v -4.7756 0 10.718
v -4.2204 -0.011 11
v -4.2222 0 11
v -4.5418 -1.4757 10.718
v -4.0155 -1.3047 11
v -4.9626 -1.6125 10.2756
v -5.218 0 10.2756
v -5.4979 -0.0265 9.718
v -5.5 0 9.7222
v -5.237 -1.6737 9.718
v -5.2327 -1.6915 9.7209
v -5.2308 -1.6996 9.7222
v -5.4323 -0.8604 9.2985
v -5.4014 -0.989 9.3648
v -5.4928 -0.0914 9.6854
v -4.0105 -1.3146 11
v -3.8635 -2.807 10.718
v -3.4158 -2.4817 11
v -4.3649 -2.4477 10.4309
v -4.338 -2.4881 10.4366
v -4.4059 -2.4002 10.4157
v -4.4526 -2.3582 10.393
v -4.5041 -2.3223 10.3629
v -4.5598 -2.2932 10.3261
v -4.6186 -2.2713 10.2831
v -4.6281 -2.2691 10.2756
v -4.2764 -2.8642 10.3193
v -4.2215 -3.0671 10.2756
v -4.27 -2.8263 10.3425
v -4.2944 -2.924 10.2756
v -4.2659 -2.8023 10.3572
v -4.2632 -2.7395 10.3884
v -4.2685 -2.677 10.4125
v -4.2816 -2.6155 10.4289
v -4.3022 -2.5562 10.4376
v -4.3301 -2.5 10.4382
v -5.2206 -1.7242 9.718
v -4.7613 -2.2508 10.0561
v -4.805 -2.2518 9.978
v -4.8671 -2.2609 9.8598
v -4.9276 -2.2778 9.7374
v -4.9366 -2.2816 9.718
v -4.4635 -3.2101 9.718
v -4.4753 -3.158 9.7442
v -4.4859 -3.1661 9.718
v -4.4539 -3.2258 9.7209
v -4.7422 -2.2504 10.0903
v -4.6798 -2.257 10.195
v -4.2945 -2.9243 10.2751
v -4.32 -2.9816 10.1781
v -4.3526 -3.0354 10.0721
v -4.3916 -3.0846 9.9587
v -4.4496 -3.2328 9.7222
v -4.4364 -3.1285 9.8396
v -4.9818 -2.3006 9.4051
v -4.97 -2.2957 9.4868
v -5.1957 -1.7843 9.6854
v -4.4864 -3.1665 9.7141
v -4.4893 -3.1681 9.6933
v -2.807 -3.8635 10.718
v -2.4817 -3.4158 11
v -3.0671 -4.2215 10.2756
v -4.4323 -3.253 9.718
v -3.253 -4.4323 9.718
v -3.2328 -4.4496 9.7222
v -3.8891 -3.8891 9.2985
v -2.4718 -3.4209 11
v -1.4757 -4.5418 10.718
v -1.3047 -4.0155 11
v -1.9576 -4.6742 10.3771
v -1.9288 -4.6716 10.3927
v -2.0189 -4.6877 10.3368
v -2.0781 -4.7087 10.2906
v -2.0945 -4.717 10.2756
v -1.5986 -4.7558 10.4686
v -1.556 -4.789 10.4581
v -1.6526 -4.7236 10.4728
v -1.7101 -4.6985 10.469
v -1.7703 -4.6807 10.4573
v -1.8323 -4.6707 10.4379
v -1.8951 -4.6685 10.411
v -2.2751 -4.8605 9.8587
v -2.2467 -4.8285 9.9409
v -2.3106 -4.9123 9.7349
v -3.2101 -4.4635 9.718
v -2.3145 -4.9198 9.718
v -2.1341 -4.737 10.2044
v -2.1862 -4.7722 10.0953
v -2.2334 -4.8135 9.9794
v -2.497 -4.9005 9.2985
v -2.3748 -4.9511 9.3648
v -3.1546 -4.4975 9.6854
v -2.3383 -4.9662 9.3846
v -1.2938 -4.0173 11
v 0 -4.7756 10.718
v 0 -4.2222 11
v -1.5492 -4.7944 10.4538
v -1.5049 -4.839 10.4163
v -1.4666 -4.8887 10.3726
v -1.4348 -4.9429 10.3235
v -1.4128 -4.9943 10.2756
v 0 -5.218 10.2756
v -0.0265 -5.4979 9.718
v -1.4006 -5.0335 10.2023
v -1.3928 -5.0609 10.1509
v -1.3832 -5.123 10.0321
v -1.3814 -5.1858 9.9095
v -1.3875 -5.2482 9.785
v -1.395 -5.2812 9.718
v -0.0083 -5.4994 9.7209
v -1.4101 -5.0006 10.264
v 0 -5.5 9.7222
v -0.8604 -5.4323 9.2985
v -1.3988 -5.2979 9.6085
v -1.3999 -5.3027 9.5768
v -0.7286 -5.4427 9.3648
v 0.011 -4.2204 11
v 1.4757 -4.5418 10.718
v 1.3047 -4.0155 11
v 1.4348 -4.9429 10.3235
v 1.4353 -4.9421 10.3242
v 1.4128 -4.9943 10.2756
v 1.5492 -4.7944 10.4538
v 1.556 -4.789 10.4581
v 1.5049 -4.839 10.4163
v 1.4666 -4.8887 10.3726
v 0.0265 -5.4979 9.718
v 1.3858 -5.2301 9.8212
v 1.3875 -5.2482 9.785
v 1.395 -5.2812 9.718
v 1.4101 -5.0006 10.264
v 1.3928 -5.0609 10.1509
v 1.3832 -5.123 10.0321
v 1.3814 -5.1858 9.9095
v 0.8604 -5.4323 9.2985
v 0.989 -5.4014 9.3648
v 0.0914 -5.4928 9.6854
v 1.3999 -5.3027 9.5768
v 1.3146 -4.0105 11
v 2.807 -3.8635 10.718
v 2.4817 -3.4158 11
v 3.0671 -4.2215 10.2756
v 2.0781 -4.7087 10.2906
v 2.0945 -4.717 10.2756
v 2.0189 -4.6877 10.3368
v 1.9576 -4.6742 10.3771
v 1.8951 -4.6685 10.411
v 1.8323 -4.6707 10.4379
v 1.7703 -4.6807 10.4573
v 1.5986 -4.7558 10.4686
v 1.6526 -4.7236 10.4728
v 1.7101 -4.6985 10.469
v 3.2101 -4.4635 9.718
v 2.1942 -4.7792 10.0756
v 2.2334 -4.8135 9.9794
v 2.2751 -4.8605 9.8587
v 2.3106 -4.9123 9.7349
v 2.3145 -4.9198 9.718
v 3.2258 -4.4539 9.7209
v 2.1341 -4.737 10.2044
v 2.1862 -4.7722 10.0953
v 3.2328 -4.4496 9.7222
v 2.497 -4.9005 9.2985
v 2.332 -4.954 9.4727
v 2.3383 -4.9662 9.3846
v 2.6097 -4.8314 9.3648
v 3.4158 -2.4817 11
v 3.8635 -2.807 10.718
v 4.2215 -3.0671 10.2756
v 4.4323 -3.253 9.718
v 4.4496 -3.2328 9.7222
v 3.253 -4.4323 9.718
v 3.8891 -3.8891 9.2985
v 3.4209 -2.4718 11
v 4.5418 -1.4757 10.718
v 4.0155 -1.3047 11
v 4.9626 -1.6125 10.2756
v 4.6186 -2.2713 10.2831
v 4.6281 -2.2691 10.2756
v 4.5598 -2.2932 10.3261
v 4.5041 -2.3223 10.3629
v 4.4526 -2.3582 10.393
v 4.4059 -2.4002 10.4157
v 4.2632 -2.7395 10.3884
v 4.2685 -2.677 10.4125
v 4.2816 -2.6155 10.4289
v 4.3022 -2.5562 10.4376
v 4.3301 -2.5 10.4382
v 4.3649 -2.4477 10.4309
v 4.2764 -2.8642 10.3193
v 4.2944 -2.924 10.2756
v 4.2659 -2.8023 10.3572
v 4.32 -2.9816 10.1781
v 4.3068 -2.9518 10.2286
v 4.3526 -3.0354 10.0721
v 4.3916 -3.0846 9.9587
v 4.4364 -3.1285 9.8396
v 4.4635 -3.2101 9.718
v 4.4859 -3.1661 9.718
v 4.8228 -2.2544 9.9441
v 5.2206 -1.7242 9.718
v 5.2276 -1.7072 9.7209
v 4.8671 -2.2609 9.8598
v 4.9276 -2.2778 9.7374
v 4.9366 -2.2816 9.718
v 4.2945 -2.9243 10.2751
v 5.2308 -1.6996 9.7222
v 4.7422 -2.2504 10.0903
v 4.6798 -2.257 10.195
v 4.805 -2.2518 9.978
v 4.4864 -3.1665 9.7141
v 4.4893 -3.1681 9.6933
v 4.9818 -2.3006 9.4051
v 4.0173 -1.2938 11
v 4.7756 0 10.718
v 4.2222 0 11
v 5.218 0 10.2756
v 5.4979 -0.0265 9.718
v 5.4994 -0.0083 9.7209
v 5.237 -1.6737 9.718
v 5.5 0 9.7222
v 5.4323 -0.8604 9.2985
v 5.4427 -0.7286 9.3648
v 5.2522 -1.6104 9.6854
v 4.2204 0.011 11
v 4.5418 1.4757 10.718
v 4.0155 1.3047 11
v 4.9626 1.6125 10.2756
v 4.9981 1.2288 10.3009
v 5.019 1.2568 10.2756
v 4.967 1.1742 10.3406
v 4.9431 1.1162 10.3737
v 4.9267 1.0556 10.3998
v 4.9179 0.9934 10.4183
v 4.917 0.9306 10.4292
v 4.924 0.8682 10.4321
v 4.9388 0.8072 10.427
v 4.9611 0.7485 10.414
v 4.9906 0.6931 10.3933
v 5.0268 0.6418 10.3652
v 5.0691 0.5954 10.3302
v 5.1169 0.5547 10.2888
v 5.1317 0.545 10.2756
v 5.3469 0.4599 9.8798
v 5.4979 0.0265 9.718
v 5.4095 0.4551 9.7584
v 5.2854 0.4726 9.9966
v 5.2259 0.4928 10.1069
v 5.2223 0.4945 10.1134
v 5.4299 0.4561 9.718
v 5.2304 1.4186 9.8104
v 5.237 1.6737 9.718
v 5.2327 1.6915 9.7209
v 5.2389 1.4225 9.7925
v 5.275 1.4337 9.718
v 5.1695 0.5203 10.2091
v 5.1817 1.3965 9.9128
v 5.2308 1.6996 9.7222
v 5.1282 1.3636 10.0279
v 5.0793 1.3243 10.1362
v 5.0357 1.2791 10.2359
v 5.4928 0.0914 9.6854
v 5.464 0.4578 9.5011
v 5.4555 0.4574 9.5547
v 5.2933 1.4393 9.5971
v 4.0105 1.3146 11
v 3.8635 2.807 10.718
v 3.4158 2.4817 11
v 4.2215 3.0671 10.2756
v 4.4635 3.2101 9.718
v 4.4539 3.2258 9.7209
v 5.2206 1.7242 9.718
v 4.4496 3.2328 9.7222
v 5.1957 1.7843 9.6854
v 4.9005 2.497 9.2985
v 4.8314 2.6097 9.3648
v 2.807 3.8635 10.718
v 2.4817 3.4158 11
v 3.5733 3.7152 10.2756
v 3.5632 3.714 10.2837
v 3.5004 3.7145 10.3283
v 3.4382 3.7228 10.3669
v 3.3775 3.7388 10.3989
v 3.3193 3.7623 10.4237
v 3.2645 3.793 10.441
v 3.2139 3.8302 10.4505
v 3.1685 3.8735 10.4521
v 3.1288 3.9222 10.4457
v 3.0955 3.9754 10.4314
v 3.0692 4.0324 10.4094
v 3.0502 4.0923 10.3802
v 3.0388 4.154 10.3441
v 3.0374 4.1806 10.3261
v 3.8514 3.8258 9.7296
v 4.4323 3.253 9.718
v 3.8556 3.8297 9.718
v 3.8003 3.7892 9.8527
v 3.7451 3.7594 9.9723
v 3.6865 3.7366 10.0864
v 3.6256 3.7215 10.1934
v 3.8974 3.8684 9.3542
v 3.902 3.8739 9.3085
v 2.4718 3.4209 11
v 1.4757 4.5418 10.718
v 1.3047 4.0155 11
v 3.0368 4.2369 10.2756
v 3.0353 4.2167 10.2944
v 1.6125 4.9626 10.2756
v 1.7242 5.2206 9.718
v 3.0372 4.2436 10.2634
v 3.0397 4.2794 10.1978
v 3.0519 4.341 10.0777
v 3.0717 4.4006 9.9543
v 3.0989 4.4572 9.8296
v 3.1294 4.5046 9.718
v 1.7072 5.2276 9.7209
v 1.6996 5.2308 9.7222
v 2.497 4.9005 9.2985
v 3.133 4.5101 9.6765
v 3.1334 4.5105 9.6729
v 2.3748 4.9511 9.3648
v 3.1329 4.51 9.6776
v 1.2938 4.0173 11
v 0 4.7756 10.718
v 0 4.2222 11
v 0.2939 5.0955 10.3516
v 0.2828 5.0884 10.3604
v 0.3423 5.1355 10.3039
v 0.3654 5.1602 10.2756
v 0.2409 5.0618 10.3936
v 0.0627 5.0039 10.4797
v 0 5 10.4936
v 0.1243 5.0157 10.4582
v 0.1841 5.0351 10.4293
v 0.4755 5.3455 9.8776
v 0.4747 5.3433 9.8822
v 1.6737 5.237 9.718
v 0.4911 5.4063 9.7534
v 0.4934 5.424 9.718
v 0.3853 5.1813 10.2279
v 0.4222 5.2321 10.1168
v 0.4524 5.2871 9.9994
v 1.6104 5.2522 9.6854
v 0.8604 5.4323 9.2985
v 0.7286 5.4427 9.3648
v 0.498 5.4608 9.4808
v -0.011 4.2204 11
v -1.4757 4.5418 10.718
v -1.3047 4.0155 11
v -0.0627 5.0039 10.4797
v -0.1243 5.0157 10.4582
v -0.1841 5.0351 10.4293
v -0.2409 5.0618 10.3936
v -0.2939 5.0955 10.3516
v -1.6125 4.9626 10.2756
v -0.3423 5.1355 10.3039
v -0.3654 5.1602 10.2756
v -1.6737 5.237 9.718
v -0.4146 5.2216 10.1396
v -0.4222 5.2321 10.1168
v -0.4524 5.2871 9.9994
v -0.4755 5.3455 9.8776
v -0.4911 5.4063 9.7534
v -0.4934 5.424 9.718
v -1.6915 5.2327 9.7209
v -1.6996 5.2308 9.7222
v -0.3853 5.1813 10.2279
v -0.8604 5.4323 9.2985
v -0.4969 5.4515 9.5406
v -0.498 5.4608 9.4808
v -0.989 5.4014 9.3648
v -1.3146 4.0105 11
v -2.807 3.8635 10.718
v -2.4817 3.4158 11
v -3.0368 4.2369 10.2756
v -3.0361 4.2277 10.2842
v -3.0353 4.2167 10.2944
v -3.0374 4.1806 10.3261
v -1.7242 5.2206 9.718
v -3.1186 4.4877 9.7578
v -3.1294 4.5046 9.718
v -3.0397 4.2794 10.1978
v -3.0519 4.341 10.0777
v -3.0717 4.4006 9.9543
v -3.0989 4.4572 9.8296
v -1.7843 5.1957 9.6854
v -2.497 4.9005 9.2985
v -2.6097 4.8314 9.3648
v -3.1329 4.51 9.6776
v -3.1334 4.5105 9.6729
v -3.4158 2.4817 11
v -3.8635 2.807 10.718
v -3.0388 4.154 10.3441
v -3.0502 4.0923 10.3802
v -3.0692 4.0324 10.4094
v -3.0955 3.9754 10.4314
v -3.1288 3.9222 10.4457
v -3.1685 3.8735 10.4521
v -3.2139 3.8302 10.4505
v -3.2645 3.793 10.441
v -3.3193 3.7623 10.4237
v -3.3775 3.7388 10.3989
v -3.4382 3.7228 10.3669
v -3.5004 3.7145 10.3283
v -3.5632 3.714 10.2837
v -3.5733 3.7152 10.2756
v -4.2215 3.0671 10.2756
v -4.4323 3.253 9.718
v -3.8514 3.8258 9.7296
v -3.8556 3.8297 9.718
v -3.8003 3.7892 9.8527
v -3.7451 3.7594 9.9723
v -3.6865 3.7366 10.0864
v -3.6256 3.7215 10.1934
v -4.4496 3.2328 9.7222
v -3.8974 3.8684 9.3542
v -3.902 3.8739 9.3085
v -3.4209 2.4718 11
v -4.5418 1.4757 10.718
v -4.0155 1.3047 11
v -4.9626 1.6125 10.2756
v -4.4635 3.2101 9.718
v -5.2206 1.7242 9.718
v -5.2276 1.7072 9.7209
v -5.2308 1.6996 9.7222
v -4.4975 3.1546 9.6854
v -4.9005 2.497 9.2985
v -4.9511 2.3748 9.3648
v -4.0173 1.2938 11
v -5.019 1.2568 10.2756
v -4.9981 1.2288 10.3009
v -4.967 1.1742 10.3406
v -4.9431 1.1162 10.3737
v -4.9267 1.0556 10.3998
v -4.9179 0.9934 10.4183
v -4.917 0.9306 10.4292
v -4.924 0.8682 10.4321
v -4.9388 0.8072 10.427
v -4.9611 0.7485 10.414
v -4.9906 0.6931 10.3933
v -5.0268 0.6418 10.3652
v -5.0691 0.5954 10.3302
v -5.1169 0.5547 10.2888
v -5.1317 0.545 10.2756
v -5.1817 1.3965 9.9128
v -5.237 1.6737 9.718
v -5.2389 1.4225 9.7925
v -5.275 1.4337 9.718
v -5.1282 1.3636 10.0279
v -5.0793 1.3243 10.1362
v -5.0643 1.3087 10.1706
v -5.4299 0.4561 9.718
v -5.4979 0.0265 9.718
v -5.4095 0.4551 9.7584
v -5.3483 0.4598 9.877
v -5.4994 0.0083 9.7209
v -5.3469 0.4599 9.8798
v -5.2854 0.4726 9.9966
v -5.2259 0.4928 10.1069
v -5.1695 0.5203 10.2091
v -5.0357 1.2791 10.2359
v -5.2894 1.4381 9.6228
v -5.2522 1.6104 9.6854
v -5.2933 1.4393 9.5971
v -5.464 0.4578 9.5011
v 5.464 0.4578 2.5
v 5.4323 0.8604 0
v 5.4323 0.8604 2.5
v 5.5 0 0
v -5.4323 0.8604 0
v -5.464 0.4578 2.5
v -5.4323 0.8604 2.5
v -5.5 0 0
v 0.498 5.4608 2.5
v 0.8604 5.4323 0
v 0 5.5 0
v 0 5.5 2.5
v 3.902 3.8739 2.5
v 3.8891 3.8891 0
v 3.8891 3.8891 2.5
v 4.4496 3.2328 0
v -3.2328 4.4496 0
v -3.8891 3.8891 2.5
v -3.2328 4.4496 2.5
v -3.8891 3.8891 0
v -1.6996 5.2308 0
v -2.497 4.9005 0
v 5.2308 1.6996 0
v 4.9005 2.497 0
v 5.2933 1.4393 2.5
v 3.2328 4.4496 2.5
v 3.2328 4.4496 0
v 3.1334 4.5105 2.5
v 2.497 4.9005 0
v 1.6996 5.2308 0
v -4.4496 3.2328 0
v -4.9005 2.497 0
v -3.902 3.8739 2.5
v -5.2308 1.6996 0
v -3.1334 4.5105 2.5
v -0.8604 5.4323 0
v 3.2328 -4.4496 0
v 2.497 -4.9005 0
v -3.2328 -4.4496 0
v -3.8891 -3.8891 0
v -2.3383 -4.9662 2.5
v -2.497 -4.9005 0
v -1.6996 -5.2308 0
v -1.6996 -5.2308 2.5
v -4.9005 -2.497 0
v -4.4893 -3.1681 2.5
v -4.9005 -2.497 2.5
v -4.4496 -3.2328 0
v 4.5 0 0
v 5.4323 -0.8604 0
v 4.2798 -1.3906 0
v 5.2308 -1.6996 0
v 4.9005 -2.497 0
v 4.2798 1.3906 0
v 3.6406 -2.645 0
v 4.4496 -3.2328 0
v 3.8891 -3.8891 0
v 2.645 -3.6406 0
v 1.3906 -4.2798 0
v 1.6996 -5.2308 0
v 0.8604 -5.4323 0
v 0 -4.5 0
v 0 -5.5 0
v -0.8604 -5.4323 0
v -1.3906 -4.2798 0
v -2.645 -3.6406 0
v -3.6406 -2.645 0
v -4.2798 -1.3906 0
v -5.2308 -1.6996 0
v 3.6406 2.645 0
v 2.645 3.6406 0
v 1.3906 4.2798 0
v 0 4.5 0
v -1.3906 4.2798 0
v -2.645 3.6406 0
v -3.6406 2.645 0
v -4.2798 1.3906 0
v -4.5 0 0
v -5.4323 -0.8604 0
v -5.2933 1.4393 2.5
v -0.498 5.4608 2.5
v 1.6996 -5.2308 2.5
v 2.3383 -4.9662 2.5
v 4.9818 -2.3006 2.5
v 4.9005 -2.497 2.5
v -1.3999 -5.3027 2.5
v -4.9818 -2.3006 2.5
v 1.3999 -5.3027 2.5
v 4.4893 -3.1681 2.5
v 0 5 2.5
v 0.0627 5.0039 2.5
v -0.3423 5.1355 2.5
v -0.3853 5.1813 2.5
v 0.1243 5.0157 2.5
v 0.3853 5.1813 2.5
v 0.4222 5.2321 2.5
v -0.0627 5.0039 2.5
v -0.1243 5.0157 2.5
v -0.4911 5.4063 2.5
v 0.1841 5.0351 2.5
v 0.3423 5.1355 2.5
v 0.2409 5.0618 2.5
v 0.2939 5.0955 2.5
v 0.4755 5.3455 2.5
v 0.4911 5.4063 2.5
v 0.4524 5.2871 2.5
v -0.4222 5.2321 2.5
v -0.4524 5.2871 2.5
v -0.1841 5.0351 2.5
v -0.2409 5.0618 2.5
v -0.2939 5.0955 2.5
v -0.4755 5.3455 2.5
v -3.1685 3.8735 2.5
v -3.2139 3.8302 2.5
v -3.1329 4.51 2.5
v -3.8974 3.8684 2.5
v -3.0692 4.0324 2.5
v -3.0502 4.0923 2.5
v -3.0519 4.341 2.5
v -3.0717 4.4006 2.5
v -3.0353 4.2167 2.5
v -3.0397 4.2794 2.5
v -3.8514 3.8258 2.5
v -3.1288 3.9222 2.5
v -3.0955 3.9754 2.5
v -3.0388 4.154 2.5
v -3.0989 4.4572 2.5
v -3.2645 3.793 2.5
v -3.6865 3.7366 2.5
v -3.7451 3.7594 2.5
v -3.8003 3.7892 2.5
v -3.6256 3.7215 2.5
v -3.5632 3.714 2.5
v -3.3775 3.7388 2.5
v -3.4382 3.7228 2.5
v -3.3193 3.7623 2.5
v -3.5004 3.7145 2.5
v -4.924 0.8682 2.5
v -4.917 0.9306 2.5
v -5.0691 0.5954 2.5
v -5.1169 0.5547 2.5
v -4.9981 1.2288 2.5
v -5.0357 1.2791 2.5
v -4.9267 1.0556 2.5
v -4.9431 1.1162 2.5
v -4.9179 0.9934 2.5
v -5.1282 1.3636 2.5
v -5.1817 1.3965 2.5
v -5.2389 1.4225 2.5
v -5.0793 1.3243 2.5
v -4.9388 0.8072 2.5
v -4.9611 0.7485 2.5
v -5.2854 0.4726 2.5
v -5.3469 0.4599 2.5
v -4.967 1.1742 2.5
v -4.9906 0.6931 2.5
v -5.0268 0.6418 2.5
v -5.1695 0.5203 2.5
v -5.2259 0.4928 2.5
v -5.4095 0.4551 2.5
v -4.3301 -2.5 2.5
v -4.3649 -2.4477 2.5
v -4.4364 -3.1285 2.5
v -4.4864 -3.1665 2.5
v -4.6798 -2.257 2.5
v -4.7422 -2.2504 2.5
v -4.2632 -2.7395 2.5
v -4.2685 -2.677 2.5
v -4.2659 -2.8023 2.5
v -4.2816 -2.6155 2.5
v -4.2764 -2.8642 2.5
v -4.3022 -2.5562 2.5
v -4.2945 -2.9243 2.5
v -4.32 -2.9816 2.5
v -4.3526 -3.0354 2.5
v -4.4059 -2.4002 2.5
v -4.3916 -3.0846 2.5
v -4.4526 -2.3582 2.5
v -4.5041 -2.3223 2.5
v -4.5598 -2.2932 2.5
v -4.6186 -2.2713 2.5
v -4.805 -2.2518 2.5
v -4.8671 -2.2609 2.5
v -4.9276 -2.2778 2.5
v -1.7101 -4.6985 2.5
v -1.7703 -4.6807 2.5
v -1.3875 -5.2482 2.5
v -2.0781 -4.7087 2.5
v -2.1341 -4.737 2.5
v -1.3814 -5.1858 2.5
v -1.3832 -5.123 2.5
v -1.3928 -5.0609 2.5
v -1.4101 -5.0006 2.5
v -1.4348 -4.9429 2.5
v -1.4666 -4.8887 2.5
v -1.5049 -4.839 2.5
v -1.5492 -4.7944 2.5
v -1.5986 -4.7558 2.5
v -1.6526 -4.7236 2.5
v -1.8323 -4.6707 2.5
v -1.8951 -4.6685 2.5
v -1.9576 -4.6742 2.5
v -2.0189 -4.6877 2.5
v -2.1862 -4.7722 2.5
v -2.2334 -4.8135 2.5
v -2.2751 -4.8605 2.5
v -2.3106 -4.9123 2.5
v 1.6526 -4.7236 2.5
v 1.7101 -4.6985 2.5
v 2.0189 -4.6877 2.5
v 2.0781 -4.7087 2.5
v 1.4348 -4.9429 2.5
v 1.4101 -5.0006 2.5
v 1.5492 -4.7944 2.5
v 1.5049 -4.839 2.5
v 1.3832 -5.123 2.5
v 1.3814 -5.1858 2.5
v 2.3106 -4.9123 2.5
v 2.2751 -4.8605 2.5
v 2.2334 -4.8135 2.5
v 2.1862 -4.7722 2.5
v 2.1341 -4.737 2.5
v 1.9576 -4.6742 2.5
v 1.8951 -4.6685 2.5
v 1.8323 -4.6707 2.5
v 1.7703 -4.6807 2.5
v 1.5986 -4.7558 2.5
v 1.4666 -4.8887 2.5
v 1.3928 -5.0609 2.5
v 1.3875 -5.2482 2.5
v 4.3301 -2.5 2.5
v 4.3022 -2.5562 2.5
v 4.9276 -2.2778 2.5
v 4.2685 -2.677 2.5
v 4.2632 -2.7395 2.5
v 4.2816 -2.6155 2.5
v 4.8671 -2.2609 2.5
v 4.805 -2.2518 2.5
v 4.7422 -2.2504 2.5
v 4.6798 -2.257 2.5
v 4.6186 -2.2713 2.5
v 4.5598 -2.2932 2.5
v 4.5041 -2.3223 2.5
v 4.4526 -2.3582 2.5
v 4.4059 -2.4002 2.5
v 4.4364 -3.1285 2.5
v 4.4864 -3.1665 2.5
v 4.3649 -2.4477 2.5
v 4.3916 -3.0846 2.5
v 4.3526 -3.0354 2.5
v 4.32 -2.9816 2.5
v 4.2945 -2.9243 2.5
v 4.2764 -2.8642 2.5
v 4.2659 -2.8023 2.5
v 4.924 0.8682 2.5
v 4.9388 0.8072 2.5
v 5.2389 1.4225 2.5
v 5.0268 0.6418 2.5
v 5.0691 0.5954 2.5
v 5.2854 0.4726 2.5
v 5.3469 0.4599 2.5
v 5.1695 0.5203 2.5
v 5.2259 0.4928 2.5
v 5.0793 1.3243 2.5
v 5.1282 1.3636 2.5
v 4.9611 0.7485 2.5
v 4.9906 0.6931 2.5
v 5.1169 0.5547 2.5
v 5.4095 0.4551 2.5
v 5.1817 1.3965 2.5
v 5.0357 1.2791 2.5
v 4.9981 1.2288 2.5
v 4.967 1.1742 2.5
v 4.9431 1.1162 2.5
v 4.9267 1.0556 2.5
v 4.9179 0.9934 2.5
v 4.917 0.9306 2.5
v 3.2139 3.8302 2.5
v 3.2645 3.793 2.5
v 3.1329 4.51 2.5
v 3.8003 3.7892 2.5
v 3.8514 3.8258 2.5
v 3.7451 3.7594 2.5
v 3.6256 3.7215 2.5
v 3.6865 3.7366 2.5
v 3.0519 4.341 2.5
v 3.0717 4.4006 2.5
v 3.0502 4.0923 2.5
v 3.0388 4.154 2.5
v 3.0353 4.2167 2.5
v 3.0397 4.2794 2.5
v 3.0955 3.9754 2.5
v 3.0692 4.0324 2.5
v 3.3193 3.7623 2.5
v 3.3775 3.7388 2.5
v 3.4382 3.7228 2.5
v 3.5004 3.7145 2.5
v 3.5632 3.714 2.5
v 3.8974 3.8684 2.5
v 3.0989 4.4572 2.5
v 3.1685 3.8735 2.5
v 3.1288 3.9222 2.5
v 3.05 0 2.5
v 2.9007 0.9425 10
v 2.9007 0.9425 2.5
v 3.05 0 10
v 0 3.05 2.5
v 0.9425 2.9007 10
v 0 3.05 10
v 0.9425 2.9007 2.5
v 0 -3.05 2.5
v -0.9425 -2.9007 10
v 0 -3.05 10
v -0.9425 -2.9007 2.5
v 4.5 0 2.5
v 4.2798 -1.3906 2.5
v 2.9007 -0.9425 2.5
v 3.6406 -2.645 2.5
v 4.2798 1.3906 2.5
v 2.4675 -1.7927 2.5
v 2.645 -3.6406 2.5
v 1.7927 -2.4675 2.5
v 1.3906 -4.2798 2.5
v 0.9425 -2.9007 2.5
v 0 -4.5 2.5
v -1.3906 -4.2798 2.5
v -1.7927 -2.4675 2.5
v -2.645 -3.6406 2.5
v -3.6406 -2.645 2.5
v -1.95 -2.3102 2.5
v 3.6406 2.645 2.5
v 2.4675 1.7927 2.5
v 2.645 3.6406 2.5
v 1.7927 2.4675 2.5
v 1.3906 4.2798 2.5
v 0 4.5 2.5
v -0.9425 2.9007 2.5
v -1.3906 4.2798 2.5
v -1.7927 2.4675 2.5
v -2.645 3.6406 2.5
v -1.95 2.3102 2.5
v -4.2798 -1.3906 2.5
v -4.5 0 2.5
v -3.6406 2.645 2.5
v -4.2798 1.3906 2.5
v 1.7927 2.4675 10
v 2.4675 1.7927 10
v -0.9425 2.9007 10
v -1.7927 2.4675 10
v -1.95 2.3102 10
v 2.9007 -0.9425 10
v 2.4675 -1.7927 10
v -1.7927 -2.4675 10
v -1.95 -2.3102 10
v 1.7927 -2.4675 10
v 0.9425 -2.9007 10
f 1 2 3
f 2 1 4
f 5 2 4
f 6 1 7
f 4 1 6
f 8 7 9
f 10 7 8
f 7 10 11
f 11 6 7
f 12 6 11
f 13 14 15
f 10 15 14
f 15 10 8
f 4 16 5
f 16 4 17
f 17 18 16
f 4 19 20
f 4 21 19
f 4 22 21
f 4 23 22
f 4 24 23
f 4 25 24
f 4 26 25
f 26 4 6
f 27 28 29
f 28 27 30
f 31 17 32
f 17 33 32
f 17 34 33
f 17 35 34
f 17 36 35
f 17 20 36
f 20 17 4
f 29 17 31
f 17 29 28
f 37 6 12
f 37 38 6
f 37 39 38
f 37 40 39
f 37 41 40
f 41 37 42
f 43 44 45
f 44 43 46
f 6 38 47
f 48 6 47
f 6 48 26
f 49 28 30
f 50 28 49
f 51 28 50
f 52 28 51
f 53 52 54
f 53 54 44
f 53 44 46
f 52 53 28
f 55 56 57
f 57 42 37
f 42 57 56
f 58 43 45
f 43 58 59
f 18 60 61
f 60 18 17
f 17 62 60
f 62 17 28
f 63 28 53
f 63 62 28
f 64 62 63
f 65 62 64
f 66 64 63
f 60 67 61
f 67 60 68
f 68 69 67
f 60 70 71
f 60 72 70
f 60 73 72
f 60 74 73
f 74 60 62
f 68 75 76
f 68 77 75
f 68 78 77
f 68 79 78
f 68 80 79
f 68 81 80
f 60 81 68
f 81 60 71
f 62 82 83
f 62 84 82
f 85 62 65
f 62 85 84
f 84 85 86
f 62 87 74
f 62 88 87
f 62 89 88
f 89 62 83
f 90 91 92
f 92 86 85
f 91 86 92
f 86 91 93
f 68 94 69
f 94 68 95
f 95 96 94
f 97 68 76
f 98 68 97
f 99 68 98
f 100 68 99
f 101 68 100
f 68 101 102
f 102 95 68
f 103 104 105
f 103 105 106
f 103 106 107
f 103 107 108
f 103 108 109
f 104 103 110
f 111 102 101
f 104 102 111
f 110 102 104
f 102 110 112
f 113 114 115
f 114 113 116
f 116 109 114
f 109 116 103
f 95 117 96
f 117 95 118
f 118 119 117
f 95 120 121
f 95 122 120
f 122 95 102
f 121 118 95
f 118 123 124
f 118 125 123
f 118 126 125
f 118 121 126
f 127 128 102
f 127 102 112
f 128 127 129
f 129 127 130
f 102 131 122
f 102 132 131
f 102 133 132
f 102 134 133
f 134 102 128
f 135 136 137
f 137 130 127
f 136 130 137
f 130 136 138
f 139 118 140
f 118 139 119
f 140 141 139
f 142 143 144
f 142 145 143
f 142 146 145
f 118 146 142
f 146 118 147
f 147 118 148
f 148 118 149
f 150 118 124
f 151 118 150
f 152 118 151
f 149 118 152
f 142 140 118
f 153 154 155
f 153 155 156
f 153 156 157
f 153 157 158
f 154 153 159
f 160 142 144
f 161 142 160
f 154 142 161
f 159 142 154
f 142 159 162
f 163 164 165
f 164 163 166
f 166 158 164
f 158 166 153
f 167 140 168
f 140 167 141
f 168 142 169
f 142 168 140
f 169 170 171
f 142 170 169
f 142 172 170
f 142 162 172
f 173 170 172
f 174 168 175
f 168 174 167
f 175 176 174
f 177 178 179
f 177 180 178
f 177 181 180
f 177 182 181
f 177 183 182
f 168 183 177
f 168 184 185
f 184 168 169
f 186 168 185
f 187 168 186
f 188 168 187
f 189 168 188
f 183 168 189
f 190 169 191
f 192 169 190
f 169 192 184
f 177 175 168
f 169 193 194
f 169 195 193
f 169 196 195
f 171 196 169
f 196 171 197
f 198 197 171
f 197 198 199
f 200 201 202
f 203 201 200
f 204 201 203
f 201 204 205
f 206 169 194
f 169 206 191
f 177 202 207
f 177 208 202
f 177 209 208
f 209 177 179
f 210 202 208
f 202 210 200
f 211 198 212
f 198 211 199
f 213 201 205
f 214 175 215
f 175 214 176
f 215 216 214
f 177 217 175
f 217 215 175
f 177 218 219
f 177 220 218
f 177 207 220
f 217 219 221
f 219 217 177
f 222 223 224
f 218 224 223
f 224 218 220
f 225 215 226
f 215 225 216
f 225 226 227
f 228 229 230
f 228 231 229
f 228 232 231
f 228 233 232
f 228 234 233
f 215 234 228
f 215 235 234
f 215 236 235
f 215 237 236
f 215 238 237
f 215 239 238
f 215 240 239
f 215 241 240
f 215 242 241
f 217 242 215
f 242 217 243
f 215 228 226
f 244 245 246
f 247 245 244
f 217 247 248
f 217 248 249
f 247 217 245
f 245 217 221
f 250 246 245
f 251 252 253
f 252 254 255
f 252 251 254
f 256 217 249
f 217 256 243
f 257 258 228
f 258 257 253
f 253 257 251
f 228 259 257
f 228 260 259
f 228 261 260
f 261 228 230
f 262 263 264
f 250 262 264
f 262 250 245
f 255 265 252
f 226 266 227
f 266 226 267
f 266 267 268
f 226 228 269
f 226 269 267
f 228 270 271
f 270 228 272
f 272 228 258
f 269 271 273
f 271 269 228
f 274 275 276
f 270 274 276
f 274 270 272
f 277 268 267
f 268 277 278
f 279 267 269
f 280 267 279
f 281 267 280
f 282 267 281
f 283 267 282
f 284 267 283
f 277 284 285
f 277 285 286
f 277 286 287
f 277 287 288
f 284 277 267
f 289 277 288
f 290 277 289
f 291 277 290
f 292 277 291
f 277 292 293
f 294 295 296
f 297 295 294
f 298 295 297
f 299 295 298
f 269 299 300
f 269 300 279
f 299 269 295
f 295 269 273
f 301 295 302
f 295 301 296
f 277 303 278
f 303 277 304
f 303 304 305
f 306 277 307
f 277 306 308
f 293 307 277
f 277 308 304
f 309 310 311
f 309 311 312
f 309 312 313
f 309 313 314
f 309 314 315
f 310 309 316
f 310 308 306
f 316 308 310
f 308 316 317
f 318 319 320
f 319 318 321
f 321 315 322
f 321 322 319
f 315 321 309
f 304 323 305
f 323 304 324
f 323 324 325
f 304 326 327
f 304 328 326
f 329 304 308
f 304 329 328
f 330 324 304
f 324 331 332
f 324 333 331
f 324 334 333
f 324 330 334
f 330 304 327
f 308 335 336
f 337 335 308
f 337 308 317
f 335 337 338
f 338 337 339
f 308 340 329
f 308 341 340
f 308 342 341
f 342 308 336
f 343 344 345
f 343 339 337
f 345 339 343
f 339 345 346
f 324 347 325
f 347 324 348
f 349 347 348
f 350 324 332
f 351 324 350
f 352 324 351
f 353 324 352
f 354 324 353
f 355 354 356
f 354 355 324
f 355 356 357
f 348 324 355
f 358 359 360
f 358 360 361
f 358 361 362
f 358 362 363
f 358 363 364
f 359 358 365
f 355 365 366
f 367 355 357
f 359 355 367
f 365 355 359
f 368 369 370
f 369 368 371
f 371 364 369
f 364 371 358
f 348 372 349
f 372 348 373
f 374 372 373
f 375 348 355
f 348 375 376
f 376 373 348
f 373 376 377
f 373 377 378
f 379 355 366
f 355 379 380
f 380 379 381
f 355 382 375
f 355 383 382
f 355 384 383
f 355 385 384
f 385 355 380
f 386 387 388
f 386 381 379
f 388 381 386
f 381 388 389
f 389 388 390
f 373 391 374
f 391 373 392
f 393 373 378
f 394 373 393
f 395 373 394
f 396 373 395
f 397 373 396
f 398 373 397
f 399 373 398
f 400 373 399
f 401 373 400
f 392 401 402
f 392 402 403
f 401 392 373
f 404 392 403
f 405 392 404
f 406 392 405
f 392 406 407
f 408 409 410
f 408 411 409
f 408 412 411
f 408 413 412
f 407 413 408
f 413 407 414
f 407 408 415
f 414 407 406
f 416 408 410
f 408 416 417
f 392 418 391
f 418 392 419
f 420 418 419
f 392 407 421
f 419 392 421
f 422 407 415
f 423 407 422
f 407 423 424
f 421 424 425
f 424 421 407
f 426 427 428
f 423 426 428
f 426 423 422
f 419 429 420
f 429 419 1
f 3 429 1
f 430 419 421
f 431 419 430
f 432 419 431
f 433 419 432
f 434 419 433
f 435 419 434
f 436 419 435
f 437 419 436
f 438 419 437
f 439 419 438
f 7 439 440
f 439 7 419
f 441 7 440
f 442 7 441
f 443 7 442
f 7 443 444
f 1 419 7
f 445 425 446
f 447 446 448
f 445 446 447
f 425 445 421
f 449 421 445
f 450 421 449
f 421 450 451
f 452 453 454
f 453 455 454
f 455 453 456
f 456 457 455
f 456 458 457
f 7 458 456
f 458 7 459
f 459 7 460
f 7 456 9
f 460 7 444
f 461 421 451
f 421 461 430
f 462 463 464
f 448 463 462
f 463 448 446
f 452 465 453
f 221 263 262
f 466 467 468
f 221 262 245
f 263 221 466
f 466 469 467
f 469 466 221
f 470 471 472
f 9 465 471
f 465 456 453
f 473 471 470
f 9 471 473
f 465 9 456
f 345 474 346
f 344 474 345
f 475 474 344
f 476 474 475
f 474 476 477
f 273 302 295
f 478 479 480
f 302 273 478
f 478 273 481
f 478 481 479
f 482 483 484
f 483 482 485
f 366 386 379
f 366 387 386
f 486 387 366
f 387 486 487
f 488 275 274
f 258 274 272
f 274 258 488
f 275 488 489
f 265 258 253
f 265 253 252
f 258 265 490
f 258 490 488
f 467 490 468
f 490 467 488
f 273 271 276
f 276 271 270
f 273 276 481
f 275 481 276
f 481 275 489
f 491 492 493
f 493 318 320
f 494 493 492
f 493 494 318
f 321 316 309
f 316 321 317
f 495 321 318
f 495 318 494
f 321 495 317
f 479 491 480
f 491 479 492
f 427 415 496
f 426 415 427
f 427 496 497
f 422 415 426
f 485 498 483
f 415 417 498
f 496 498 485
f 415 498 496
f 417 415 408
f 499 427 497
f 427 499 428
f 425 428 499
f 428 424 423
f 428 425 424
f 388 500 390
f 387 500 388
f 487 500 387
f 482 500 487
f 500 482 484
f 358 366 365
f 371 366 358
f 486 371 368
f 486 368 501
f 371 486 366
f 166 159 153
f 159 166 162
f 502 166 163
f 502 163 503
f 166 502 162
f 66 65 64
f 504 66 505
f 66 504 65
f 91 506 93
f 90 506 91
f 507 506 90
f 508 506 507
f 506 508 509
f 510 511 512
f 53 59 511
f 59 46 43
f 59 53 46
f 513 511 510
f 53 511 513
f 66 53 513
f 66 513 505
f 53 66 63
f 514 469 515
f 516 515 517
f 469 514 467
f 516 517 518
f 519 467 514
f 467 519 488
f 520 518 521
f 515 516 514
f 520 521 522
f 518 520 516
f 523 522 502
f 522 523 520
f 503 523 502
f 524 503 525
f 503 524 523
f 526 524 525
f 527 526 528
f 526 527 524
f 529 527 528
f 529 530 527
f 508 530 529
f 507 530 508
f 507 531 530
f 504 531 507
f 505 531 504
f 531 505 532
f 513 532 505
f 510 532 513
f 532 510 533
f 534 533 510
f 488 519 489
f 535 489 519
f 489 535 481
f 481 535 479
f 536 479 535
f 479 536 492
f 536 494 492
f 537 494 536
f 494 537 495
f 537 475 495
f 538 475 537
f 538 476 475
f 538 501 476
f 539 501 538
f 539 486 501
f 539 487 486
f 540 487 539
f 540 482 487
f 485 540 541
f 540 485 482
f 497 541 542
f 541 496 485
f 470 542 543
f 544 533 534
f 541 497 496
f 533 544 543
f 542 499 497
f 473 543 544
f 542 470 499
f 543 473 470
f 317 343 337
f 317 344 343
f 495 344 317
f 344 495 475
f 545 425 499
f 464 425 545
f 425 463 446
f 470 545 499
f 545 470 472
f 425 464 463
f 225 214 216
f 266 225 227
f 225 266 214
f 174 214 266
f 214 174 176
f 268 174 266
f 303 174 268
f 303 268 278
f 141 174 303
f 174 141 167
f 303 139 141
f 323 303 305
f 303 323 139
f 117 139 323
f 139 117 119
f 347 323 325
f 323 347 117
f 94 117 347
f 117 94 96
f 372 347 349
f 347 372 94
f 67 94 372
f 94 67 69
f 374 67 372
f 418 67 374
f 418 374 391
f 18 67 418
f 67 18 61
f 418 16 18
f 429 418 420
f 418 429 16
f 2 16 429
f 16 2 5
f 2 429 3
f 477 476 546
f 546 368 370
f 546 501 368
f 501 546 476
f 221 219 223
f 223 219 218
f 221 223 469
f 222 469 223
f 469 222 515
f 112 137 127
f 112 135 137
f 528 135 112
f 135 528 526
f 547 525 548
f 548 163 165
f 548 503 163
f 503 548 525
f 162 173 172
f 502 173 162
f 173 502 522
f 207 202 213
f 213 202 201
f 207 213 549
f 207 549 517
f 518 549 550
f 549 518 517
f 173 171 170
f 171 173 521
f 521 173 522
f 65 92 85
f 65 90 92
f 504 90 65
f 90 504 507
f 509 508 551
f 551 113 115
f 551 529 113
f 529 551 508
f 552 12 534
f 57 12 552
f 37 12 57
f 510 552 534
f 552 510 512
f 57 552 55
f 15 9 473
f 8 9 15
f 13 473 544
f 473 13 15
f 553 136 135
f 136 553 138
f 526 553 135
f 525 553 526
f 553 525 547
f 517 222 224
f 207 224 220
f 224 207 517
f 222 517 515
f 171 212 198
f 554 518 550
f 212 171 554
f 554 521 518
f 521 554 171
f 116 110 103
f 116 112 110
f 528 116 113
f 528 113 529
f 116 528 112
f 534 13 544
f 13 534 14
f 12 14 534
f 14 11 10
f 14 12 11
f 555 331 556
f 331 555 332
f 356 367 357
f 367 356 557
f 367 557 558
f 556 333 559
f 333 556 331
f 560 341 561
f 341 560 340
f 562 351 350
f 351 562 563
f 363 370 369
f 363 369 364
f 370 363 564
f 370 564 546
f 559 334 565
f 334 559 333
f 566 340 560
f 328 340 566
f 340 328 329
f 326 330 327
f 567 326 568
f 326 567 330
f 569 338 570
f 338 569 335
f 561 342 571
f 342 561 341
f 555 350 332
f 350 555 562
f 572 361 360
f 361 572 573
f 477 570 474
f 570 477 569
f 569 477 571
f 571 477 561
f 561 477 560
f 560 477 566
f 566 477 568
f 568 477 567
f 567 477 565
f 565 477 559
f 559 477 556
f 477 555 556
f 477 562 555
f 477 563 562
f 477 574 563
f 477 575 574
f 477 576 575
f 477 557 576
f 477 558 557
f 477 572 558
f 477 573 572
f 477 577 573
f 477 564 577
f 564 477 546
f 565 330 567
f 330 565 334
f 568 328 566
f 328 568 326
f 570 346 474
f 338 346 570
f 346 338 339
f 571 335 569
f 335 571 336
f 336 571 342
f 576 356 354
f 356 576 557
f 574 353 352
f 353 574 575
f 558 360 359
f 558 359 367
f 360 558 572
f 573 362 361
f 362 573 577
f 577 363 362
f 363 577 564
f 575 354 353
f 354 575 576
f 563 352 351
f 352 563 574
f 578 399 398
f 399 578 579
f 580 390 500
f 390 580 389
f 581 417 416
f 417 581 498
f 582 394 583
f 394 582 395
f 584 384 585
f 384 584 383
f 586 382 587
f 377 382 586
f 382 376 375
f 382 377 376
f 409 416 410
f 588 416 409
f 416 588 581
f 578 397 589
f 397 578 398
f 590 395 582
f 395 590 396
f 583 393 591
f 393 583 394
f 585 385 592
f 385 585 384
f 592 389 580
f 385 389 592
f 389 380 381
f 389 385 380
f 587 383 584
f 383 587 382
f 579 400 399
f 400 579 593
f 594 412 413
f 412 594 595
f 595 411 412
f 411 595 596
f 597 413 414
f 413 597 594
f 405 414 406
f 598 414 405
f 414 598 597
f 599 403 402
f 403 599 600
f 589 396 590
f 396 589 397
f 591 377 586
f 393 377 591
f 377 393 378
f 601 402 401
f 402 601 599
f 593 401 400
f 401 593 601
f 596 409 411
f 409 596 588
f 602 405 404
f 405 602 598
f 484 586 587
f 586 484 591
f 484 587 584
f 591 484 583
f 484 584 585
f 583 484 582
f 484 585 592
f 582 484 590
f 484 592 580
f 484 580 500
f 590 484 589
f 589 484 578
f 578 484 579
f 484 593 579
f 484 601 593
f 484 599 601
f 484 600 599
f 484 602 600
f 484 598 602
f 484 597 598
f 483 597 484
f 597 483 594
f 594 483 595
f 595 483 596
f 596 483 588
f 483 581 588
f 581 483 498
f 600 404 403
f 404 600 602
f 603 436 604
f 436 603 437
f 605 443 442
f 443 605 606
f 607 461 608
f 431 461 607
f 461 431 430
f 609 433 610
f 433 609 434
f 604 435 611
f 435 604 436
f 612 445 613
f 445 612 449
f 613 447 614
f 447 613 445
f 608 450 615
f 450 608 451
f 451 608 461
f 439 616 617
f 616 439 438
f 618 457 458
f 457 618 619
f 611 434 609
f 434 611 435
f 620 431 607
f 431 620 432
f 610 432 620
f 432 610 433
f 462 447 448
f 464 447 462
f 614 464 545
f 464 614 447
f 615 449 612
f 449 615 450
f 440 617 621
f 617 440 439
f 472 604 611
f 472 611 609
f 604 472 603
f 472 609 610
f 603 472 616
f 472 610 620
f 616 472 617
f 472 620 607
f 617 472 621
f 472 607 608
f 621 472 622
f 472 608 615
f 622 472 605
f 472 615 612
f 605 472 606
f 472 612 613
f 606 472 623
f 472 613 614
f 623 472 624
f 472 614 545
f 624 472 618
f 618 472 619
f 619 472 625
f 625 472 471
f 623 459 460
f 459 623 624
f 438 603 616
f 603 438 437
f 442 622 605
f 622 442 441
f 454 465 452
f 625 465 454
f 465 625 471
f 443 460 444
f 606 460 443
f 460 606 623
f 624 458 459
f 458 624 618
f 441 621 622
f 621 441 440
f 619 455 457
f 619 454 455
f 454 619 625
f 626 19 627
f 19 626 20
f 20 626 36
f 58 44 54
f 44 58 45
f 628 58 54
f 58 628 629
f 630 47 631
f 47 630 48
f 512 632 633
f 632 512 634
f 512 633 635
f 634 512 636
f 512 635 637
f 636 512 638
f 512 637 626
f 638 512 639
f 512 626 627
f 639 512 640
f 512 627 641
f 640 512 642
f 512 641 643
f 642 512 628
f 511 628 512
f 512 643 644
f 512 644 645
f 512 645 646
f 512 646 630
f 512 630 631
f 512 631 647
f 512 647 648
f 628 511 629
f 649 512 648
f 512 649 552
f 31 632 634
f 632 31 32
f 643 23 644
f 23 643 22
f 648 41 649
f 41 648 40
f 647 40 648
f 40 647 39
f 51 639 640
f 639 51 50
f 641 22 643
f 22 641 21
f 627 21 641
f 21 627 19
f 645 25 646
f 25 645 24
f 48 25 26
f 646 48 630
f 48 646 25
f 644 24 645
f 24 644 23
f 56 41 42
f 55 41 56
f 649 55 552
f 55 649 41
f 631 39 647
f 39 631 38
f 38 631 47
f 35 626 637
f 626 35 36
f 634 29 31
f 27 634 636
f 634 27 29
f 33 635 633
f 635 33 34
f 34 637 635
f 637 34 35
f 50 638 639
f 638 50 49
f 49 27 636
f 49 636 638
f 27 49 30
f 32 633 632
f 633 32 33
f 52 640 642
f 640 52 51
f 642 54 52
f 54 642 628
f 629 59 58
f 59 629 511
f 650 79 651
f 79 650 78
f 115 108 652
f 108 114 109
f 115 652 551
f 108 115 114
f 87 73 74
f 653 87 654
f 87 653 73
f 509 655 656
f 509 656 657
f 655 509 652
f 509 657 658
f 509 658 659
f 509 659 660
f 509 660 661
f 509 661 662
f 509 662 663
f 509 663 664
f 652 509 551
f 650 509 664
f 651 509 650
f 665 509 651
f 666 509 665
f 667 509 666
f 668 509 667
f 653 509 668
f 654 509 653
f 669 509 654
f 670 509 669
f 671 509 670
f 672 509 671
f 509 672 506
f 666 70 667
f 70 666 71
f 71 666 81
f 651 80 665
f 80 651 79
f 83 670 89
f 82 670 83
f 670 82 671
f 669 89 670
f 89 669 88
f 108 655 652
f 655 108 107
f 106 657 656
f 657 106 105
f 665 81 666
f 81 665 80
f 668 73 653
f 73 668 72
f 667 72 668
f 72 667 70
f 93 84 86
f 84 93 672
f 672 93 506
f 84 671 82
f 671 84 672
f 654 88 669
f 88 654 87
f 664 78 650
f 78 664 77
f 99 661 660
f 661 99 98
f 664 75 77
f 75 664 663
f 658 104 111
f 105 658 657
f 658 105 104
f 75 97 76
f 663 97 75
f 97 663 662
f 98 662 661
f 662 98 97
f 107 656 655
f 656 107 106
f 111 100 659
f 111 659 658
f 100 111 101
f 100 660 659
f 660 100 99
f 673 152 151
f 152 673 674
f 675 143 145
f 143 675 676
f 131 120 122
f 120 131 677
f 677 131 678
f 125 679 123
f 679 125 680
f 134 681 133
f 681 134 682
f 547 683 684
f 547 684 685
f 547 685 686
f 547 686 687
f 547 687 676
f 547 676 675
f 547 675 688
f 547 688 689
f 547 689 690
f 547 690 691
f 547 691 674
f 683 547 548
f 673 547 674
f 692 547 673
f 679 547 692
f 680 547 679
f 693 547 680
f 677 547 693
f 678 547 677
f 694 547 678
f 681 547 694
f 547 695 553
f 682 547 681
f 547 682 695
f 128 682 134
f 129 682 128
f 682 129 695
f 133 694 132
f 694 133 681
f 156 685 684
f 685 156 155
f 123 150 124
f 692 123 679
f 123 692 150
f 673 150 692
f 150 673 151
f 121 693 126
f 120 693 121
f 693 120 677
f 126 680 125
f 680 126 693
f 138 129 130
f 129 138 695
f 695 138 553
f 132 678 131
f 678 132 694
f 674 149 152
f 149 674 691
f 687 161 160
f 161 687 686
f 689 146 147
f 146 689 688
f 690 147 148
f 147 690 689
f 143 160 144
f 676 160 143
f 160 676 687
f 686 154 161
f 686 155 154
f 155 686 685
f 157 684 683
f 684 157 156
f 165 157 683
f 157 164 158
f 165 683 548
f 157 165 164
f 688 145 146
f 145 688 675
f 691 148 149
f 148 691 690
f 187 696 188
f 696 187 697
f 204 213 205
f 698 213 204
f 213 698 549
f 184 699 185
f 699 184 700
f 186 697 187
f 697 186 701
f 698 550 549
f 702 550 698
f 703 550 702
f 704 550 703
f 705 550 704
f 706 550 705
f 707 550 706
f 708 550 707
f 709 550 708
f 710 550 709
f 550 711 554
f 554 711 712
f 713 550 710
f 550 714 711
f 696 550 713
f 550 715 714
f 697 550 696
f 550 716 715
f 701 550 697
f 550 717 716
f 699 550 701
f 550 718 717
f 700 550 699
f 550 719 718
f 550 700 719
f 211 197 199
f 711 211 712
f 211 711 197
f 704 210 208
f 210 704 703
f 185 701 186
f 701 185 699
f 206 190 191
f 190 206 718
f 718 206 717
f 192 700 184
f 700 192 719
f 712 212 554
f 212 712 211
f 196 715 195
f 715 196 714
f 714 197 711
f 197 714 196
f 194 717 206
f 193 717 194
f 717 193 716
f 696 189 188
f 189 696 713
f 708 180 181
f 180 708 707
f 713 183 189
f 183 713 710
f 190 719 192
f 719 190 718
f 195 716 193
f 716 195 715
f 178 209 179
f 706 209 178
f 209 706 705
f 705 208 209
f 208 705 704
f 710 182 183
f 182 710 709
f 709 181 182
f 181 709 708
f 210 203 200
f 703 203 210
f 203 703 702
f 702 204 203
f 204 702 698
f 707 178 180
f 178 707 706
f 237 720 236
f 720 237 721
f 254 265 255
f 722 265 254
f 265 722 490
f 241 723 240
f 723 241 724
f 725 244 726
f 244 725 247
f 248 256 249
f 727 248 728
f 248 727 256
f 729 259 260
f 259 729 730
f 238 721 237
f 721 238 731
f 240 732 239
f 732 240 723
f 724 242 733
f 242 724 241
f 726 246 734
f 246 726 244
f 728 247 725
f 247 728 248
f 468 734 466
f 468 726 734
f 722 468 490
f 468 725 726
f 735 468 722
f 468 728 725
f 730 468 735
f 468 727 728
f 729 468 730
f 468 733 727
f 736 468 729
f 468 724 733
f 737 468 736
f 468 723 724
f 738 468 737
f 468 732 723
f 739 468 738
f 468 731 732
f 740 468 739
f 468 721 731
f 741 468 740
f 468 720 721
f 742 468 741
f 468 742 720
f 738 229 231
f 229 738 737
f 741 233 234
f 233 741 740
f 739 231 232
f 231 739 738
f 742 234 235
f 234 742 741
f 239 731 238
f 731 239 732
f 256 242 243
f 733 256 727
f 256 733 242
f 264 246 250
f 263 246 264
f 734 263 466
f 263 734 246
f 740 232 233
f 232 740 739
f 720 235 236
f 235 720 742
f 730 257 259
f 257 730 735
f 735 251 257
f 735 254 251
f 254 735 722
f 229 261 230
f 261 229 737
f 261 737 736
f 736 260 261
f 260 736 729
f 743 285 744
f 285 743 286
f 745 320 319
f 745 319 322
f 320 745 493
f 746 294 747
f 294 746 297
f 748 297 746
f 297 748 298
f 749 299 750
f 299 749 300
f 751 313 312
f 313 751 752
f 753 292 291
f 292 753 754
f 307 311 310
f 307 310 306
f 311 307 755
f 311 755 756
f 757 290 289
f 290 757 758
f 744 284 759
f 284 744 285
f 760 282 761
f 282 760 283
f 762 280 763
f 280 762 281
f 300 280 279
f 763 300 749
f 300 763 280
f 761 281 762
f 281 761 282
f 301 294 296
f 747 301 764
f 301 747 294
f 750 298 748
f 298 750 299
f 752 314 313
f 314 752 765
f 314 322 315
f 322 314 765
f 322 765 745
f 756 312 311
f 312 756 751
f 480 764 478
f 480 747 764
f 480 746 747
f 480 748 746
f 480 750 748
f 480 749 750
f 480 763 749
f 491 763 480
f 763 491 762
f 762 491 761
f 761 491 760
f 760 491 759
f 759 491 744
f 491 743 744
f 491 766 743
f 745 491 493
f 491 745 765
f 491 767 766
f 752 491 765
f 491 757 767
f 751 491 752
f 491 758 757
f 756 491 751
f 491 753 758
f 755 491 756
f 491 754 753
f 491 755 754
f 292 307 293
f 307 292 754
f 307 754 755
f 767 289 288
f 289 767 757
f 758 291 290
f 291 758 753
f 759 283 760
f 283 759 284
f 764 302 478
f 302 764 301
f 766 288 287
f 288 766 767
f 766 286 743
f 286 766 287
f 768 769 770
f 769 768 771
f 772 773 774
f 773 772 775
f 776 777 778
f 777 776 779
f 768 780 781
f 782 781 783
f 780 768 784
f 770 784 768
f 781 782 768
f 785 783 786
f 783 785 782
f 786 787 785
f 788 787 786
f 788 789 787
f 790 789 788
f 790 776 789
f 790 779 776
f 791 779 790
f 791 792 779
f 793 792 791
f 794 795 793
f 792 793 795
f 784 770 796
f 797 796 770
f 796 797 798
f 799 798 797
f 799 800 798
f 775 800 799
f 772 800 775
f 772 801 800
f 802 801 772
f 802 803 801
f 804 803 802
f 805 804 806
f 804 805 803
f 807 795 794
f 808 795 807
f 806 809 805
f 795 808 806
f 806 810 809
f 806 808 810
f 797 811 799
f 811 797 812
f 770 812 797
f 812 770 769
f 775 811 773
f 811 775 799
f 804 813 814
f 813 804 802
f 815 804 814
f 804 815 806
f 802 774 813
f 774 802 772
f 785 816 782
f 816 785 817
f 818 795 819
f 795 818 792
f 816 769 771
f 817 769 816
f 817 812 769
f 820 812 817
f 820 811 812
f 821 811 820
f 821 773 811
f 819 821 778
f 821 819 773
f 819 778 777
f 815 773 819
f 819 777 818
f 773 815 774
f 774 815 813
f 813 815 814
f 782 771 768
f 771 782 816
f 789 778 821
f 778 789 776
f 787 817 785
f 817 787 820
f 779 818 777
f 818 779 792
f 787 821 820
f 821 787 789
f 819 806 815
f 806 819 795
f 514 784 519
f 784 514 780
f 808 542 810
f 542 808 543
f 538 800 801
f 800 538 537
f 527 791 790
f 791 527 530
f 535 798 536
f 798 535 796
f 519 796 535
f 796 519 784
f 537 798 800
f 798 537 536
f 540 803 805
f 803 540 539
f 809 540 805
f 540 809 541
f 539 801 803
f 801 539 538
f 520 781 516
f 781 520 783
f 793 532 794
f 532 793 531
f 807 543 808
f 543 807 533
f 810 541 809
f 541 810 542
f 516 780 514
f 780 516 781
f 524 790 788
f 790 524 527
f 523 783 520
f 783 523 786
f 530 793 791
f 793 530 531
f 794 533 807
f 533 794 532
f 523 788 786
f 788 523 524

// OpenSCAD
/*

Parametric Potentiometer Knob Generator
version 1.4
2013 Steve Cooley
http://sc-fa.com
http://beatseqr.com
http://hapticsynapses.com

parametric potentiometer knob generator by steve cooley is licensed under a Creative Commons Attribution-NonCommercial-ShareAlike 3.0 Unported License. Based on a work at sc-fa.com. Permissions beyond the scope of this license may be available at http://sc-fa.com/blog/contact.

view terms of the license here:
http://creativecommons.org/licenses/by-nc-sa/3.0/


version history
---------------
1.4 2013-07-16 added an additive OR subtractive pill shaped indicator type
1.3 2013-04-01 updated for more awesome Thingiverse Customizer
1.2 2013-01-09 updated for Thingiverse Customizer
1.1 2012-04-12 fixed the arrow indicator code to be more robust and easier to adjust parameters for.
1.0 2012-03-?? initial release.


*/

/* [Physical attributes] */

bottom_spaceH=2.5;
bottom_spaceD=9;
layerH=0;

// All values are in Millimeters!  How big the top of the knob is:
01_knob_diameter_top = 11; //[10:100]
knob_radius_top = 01_knob_diameter_top / 2;

// How big the bottom of the knob is:
02_knob_diameter_bottom = 11; // [10:100]
knob_radius_bottom = 02_knob_diameter_bottom / 2;

// how tall the knob is:
03_knob_height = 11; // [5:50]
knob_height = 03_knob_height / 1;

// how smooth or geometric the knob is:
04_knob_smoothness = 40; // [3:40]
knob_smoothness = 04_knob_smoothness / 1;

// (measure the potentiometer shaft with calipers and remember to add a bit for shrinkage.)
05_shaft_diameter = 6.1; // this could be a slider if precision were available
shaft_radius = 05_shaft_diameter / 2;

// how much of the shaft the knob should allow space inside for:
06_shaft_height = 10; // [1:40]
shaft_height = 06_shaft_height / 1;

// higher is smoother
07_shaft_smoothness = 20; // [3:20]
shaft_smoothness = 07_shaft_smoothness / 1;

// some potentiometers have a flat surface on the shaft to allow for the use of a set screw.
08_shaft_hole_is_flatted = "true"; // [true,false]

// ignore if no flat is needed.
09_shaft_hole_flat_size = 5; // this could be a slider if precision were available
flat_size = 09_shaft_hole_flat_size / 1;

/* [Set screw] */

// some potentiometers need to have their knobs affixed with a set screw.
10_set_screw = "false"; //[true,false]

// in MM:
11_set_screw_diameter = 3; // [0:8]
set_screw_radius = 11_set_screw_diameter / 2;

// how deep into the knob, from the side:
12_set_screw_depth = 9; // [0:20]
set_screw_depth = 12_set_screw_depth / 1;

// from the top:
13_set_screw_height = 4; // [0:20]
set_screw_height = 13_set_screw_height / 1;

// higher is smoother:
14_quality_of_set_screw = 20; // [0:20]
quality_of_set_screw = 14_quality_of_set_screw / 1;

/* [Decorations] */

// thanks to http://www.iheartrobotics.com/ for the articles!
15_top_edge_smoothing = "true"; // [true,false]

// how big of a smoothing radius to apply
16_top_edge_smoothing_radius = 2.0; // [1:10]
smoothing_radius = 16_top_edge_smoothing_radius / 1;

// Number of facets for the rounding cylinder
17_top_edge_smoothing_smoothness = 20.0; // [1:40]
smooth = 17_top_edge_smoothing_smoothness / 1;

ct = -0.1 / 1; 							// circle translate? not sure.
circle_radius = knob_radius_top / 1;  	// just match the top edge radius
circle_height = 1 / 1; 					// actually.. I don't know what this does.
pad = 0.2 / 1;							// Padding to maintain manifold



/* [External indicator] */

// this is a corner edge of a cube sticking out of the cylinder at the bottom, you can use it instead of the arrow shaped cutout in the top if you like. Or both.
18_pointy_external_indicator = "false"; // [true,false]


// how tall should the indicator be, from the bottom:
19_pointy_external_indicator_height = 3; // [1:50]
pointy_external_indicator_height = 19_pointy_external_indicator_height / 1;

// how far out the indicator should poke out:
20_pointy_external_indicator_pokey_outey_ness = 1.0;
pointy_external_indicator_pokey_outey_ness = 20_pointy_external_indicator_pokey_outey_ness * 1;

pokey_outey_value = pointy_external_indicator_pokey_outey_ness - 1 - pad;
pokey_outey = [pokey_outey_value, pokey_outey_value,0];

// there's an arrow shaped hole you can have. There aren't a lot of controls for this.
// please feel free to improve on this script here.

/* [Pill-shaped indicator] */

// there's an arrow shape you can have in the top of the knob.
00_pill_indicator = "false"; // [true,false]

// add or subtract the pill shape?
00_pill_add_or_subtract = "add"; // [add,subtract]

// relative scale of the pill shape:
00_pill_scale = 1.0;

// height of the pill shape:
00_pill_height = 12.0;

// relative scale of length of the pill shape:
00_pill_length = 2.5;

// where to put the arrow, x:
00_pill_location_x = 0.0;

// where to put the arrow, y:
00_pill_location_y = 5.0;

// where to put the arrow, z:
00_pill_location_z = 0.0;

pill_translate = [00_pill_location_x,00_pill_location_y,00_pill_location_z];


/* [Internal Arrow indicator] */

// there's an arrow shape you can have in the top of the knob.
21_top_of_knob_arrow_indicator = "false"; // [true,false]

// scale the arrow head:
22_arrow_head_scale = 0.6;
arrow_scale_head = 22_arrow_head_scale / 1;

// scale the arrow shaft:
23_arrow_shaft_scale = 0;
arrow_scale_shaft = 23_arrow_shaft_scale / 1;

// how big the overall arrow indicator should be:
24_arrow_indicator_scale = 1.3;
arrow_indicator_scale = 24_arrow_indicator_scale / 1;

// where to put the arrow, x:
25_arrow_location_x = 0.0;

// where to put the arrow, y:
26_arrow_location_y = 1.50;

// where to put the arrow, z:
27_arrow_location_z = 12.3;

arrow_indicator_translate = [25_arrow_location_x,26_arrow_location_y,27_arrow_location_z];



/* [Sphere Indentations] */

// for spherical indentations, set the quantity, quality, size, and adjust the placement
28_indentations_sphere = "false"; // [true,false]

29_sphere_number_of_indentations = 12; // [1:50]
sphere_number_of_indentations = 29_sphere_number_of_indentations / 1;

30_sphere_quality_of_indentations = 40; // [1:100]
sphere_quality_of_indentations = 30_sphere_quality_of_indentations / 1;

31_size_of_sphere_indentations = 4; // [1:20]
size_of_sphere_indentations = 31_size_of_sphere_indentations / 1;

// the first number in this set moves the spheres in or out. smaller is closer to the middle
32_sphere_indentation_location_x = 12.0;

// the second number in this set moves the spheres left or right
33_sphere_indentation_location_y = 00.0;

// the third number in this set moves the speheres up or down
34_sphere_indentation_location_z = 15.0;

translation_of_sphere_indentations = [32_sphere_indentation_location_x,33_sphere_indentation_location_y,34_sphere_indentation_location_z];

// in case you are using an odd number of indentations, you way want to adjust the starting angle so that they align to the front or set screw locations.
35_sphere_indentation_starting_rotation = 30; // [-90:90]
sphere_starting_rotation = 35_sphere_indentation_starting_rotation / 1 + 90;

/* [Cylinder Indentations] */

// for cylinder indentations, set quantity, quality, radius, height, and placement
36_indentations_cylinder = "true"; // [true,false]

37_number_of_cylinder_indentations = 9; // [1:40]
cylinder_number_of_indentations = 37_number_of_cylinder_indentations / 1;

// higher is smoother:
38_smoothness_of_cylinder_indentations = 50; // [3:100]
cylinder_quality_of_indentations = 38_smoothness_of_cylinder_indentations / 1;

39_diameter_of_top_of_the_cylinder = 1; // [1:20]
radius_of_cylinder_indentations_top = 39_diameter_of_top_of_the_cylinder / 2;

40_diameter_of_bottom_of_the_cylinder = 1;  // [1:20]
radius_of_cylinder_indentations_bottom = 40_diameter_of_bottom_of_the_cylinder / 2;

41_height_of_cylinder_indentations = 15.0; // [0:40]
height_of_cylinder_indentations = 41_height_of_cylinder_indentations / 1;

// this moves the cylinders in or out from the center
42_position_of_cylinder_x = -0.0; //[-20:20]

// this moves the cylinders left or right
43_position_of_cylinder_y = 0.0; //[-20:20]

// this moves the cylinders up or down
44_position_of_cylinder_z = -1.0; //[-20:20]

translation_of_cylinder_indentations = [42_position_of_cylinder_x,43_position_of_cylinder_y,44_position_of_cylinder_z];

45_cylinder_starting_rotation = 0; // [-90:90]
cylinder_starting_rotation = 45_cylinder_starting_rotation / 1 - 90;


// these are some setup variables... you probably won't need to mess with them.
negative_knob_radius = knob_radius_bottom*-1;


// this is the main module. It calls the submodules.
make_the_knob();

module make_the_knob()
{
difference()
{
	union()
	{
	difference()
		{
		difference()
			{
		
			difference() 
				{
				difference() 
					{
					
					union()
						{
						
						difference()
							{
							// main cylinder
							cylinder(r1=knob_radius_bottom,r2=knob_radius_top,h=knob_height, $fn=knob_smoothness);
							
							smoothing();				
		
							}
				
						external_direction_indicator();	
						}
					
					}
					
				set_screw_hole();
				}
			
			if(00_pill_add_or_subtract == "subtract")
				{
				pill();
				}
			arrow_indicator();
			indentations();
			}
		
	}
	if(00_pill_add_or_subtract == "add")
							{
							pill();
							}
	
	}
shaft_hole();
bottom_space();    
}

}
module smoothing() {

// smoothing the top
				if(15_top_edge_smoothing == "true")
					{		
						translate([0,0,knob_height])
						rotate([180,0,0])
						difference() {
							rotate_extrude(convexity=10,  $fn = smooth)
							translate([circle_radius-ct-smoothing_radius+pad,ct-pad,0])
							square(smoothing_radius+pad,smoothing_radius+pad);
	
							rotate_extrude(convexity=10,  $fn = smooth)
							translate([circle_radius-ct-smoothing_radius,ct+smoothing_radius,0])
							circle(r=smoothing_radius,$fn=smooth);
							}	
					}
}

module external_direction_indicator() {

				if(18_pointy_external_indicator == "true")
						{
						
						
						// outer pointy indicator
						rotate([0,0,45])
						translate(pokey_outey)
						// cube size of 8 minimum to point out
						cube(size=[knob_radius_bottom,knob_radius_bottom,pointy_external_indicator_height],center=false);
						}

}

module shaft_hole() {
				// shaft hole
				difference()
					{
					
					// round shaft hole
					translate([ 0, 0, bottom_spaceH+layerH]) 
					cylinder(r=shaft_radius,h=shaft_height-bottom_spaceH, $fn=shaft_smoothness);
					
					if(08_shaft_hole_is_flatted  == "true")
						{
						// D shaft shape for shaft cutout
						rotate( [0,0,90]) 
						translate([-shaft_radius,-shaft_radius+flat_size,bottom_spaceH]) 
						cube(size=[shaft_radius*2,shaft_radius*2,shaft_height-bottom_spaceH-layerH],center=false);
                        //cube(size=[flat_size,10,13],center=false);
						}
					}
}
module bottom_space() {
    translate([ 0, 0, -1]) 
	cylinder(d=bottom_spaceD,h=bottom_spaceH+1, $fn=shaft_smoothness);				
}

module set_screw_hole() {

			if(10_set_screw == "true")
				{
				// set screw hole
				rotate ([90,0,0])
				translate([ 0, set_screw_height, 1 ])
				cylinder(r=set_screw_radius,h=set_screw_depth, $fn=quality_of_set_screw);
				}
}

module arrow_indicator() {
		if(21_top_of_knob_arrow_indicator == "true")
			{
			translate(arrow_indicator_translate)
			// begin arrow top cutout
			// translate([(knob_radius/2),knob_height,knob_height])
			rotate([90,0,45])
			scale([arrow_indicator_scale*.3,arrow_indicator_scale*.3,arrow_indicator_scale*.3])
			union()
				{			  
				rotate([90,45,0])
				scale([arrow_scale_head,arrow_scale_head,1])
				cylinder(r=8, h=10, $fn=3, center=true);
				rotate([90,45,0])
				translate([-10,0,0])
				scale([arrow_scale_shaft,arrow_scale_shaft,1])
				cube(size=[15,10,10],center=true);
				}
			}
}

module indentations() {

if(28_indentations_sphere == "true")
			{
			for (z = [0:sphere_number_of_indentations]) 
				{
				rotate([0,0,sphere_starting_rotation+((360/sphere_number_of_indentations)*z)])
				translate(translation_of_sphere_indentations)
				sphere(size_of_sphere_indentations, $fn=sphere_quality_of_indentations); 
				}
			}
if(36_indentations_cylinder == "true")
			{
			for (z = [0:cylinder_number_of_indentations]) 
				{
				rotate([0,0,cylinder_starting_rotation+((360/cylinder_number_of_indentations)*z)])
				
				translate([negative_knob_radius,0,knob_height])
				translate(translation_of_cylinder_indentations)
				cylinder(r1=radius_of_cylinder_indentations_bottom, r2=radius_of_cylinder_indentations_top, h=height_of_cylinder_indentations, center=true, $fn=cylinder_quality_of_indentations); 
				}
			}
		}

module pill()
{

if(00_pill_indicator == "true")
	{

	translate(pill_translate)

	rotate([0,0,90])
		{
		union()
			{
			cylinder(00_pill_height,00_pill_scale,00_pill_scale, $fn=40);
			translate([0,-00_pill_scale,0])
				{
					cube([(00_pill_scale*2)*00_pill_length,00_pill_scale*2,00_pill_height]);
				}
			translate([(00_pill_scale*2)*00_pill_length,0,0])
				{
					cylinder(00_pill_height,00_pill_scale,00_pill_scale, $fn=40);
				}
			}
		}
	}
}
